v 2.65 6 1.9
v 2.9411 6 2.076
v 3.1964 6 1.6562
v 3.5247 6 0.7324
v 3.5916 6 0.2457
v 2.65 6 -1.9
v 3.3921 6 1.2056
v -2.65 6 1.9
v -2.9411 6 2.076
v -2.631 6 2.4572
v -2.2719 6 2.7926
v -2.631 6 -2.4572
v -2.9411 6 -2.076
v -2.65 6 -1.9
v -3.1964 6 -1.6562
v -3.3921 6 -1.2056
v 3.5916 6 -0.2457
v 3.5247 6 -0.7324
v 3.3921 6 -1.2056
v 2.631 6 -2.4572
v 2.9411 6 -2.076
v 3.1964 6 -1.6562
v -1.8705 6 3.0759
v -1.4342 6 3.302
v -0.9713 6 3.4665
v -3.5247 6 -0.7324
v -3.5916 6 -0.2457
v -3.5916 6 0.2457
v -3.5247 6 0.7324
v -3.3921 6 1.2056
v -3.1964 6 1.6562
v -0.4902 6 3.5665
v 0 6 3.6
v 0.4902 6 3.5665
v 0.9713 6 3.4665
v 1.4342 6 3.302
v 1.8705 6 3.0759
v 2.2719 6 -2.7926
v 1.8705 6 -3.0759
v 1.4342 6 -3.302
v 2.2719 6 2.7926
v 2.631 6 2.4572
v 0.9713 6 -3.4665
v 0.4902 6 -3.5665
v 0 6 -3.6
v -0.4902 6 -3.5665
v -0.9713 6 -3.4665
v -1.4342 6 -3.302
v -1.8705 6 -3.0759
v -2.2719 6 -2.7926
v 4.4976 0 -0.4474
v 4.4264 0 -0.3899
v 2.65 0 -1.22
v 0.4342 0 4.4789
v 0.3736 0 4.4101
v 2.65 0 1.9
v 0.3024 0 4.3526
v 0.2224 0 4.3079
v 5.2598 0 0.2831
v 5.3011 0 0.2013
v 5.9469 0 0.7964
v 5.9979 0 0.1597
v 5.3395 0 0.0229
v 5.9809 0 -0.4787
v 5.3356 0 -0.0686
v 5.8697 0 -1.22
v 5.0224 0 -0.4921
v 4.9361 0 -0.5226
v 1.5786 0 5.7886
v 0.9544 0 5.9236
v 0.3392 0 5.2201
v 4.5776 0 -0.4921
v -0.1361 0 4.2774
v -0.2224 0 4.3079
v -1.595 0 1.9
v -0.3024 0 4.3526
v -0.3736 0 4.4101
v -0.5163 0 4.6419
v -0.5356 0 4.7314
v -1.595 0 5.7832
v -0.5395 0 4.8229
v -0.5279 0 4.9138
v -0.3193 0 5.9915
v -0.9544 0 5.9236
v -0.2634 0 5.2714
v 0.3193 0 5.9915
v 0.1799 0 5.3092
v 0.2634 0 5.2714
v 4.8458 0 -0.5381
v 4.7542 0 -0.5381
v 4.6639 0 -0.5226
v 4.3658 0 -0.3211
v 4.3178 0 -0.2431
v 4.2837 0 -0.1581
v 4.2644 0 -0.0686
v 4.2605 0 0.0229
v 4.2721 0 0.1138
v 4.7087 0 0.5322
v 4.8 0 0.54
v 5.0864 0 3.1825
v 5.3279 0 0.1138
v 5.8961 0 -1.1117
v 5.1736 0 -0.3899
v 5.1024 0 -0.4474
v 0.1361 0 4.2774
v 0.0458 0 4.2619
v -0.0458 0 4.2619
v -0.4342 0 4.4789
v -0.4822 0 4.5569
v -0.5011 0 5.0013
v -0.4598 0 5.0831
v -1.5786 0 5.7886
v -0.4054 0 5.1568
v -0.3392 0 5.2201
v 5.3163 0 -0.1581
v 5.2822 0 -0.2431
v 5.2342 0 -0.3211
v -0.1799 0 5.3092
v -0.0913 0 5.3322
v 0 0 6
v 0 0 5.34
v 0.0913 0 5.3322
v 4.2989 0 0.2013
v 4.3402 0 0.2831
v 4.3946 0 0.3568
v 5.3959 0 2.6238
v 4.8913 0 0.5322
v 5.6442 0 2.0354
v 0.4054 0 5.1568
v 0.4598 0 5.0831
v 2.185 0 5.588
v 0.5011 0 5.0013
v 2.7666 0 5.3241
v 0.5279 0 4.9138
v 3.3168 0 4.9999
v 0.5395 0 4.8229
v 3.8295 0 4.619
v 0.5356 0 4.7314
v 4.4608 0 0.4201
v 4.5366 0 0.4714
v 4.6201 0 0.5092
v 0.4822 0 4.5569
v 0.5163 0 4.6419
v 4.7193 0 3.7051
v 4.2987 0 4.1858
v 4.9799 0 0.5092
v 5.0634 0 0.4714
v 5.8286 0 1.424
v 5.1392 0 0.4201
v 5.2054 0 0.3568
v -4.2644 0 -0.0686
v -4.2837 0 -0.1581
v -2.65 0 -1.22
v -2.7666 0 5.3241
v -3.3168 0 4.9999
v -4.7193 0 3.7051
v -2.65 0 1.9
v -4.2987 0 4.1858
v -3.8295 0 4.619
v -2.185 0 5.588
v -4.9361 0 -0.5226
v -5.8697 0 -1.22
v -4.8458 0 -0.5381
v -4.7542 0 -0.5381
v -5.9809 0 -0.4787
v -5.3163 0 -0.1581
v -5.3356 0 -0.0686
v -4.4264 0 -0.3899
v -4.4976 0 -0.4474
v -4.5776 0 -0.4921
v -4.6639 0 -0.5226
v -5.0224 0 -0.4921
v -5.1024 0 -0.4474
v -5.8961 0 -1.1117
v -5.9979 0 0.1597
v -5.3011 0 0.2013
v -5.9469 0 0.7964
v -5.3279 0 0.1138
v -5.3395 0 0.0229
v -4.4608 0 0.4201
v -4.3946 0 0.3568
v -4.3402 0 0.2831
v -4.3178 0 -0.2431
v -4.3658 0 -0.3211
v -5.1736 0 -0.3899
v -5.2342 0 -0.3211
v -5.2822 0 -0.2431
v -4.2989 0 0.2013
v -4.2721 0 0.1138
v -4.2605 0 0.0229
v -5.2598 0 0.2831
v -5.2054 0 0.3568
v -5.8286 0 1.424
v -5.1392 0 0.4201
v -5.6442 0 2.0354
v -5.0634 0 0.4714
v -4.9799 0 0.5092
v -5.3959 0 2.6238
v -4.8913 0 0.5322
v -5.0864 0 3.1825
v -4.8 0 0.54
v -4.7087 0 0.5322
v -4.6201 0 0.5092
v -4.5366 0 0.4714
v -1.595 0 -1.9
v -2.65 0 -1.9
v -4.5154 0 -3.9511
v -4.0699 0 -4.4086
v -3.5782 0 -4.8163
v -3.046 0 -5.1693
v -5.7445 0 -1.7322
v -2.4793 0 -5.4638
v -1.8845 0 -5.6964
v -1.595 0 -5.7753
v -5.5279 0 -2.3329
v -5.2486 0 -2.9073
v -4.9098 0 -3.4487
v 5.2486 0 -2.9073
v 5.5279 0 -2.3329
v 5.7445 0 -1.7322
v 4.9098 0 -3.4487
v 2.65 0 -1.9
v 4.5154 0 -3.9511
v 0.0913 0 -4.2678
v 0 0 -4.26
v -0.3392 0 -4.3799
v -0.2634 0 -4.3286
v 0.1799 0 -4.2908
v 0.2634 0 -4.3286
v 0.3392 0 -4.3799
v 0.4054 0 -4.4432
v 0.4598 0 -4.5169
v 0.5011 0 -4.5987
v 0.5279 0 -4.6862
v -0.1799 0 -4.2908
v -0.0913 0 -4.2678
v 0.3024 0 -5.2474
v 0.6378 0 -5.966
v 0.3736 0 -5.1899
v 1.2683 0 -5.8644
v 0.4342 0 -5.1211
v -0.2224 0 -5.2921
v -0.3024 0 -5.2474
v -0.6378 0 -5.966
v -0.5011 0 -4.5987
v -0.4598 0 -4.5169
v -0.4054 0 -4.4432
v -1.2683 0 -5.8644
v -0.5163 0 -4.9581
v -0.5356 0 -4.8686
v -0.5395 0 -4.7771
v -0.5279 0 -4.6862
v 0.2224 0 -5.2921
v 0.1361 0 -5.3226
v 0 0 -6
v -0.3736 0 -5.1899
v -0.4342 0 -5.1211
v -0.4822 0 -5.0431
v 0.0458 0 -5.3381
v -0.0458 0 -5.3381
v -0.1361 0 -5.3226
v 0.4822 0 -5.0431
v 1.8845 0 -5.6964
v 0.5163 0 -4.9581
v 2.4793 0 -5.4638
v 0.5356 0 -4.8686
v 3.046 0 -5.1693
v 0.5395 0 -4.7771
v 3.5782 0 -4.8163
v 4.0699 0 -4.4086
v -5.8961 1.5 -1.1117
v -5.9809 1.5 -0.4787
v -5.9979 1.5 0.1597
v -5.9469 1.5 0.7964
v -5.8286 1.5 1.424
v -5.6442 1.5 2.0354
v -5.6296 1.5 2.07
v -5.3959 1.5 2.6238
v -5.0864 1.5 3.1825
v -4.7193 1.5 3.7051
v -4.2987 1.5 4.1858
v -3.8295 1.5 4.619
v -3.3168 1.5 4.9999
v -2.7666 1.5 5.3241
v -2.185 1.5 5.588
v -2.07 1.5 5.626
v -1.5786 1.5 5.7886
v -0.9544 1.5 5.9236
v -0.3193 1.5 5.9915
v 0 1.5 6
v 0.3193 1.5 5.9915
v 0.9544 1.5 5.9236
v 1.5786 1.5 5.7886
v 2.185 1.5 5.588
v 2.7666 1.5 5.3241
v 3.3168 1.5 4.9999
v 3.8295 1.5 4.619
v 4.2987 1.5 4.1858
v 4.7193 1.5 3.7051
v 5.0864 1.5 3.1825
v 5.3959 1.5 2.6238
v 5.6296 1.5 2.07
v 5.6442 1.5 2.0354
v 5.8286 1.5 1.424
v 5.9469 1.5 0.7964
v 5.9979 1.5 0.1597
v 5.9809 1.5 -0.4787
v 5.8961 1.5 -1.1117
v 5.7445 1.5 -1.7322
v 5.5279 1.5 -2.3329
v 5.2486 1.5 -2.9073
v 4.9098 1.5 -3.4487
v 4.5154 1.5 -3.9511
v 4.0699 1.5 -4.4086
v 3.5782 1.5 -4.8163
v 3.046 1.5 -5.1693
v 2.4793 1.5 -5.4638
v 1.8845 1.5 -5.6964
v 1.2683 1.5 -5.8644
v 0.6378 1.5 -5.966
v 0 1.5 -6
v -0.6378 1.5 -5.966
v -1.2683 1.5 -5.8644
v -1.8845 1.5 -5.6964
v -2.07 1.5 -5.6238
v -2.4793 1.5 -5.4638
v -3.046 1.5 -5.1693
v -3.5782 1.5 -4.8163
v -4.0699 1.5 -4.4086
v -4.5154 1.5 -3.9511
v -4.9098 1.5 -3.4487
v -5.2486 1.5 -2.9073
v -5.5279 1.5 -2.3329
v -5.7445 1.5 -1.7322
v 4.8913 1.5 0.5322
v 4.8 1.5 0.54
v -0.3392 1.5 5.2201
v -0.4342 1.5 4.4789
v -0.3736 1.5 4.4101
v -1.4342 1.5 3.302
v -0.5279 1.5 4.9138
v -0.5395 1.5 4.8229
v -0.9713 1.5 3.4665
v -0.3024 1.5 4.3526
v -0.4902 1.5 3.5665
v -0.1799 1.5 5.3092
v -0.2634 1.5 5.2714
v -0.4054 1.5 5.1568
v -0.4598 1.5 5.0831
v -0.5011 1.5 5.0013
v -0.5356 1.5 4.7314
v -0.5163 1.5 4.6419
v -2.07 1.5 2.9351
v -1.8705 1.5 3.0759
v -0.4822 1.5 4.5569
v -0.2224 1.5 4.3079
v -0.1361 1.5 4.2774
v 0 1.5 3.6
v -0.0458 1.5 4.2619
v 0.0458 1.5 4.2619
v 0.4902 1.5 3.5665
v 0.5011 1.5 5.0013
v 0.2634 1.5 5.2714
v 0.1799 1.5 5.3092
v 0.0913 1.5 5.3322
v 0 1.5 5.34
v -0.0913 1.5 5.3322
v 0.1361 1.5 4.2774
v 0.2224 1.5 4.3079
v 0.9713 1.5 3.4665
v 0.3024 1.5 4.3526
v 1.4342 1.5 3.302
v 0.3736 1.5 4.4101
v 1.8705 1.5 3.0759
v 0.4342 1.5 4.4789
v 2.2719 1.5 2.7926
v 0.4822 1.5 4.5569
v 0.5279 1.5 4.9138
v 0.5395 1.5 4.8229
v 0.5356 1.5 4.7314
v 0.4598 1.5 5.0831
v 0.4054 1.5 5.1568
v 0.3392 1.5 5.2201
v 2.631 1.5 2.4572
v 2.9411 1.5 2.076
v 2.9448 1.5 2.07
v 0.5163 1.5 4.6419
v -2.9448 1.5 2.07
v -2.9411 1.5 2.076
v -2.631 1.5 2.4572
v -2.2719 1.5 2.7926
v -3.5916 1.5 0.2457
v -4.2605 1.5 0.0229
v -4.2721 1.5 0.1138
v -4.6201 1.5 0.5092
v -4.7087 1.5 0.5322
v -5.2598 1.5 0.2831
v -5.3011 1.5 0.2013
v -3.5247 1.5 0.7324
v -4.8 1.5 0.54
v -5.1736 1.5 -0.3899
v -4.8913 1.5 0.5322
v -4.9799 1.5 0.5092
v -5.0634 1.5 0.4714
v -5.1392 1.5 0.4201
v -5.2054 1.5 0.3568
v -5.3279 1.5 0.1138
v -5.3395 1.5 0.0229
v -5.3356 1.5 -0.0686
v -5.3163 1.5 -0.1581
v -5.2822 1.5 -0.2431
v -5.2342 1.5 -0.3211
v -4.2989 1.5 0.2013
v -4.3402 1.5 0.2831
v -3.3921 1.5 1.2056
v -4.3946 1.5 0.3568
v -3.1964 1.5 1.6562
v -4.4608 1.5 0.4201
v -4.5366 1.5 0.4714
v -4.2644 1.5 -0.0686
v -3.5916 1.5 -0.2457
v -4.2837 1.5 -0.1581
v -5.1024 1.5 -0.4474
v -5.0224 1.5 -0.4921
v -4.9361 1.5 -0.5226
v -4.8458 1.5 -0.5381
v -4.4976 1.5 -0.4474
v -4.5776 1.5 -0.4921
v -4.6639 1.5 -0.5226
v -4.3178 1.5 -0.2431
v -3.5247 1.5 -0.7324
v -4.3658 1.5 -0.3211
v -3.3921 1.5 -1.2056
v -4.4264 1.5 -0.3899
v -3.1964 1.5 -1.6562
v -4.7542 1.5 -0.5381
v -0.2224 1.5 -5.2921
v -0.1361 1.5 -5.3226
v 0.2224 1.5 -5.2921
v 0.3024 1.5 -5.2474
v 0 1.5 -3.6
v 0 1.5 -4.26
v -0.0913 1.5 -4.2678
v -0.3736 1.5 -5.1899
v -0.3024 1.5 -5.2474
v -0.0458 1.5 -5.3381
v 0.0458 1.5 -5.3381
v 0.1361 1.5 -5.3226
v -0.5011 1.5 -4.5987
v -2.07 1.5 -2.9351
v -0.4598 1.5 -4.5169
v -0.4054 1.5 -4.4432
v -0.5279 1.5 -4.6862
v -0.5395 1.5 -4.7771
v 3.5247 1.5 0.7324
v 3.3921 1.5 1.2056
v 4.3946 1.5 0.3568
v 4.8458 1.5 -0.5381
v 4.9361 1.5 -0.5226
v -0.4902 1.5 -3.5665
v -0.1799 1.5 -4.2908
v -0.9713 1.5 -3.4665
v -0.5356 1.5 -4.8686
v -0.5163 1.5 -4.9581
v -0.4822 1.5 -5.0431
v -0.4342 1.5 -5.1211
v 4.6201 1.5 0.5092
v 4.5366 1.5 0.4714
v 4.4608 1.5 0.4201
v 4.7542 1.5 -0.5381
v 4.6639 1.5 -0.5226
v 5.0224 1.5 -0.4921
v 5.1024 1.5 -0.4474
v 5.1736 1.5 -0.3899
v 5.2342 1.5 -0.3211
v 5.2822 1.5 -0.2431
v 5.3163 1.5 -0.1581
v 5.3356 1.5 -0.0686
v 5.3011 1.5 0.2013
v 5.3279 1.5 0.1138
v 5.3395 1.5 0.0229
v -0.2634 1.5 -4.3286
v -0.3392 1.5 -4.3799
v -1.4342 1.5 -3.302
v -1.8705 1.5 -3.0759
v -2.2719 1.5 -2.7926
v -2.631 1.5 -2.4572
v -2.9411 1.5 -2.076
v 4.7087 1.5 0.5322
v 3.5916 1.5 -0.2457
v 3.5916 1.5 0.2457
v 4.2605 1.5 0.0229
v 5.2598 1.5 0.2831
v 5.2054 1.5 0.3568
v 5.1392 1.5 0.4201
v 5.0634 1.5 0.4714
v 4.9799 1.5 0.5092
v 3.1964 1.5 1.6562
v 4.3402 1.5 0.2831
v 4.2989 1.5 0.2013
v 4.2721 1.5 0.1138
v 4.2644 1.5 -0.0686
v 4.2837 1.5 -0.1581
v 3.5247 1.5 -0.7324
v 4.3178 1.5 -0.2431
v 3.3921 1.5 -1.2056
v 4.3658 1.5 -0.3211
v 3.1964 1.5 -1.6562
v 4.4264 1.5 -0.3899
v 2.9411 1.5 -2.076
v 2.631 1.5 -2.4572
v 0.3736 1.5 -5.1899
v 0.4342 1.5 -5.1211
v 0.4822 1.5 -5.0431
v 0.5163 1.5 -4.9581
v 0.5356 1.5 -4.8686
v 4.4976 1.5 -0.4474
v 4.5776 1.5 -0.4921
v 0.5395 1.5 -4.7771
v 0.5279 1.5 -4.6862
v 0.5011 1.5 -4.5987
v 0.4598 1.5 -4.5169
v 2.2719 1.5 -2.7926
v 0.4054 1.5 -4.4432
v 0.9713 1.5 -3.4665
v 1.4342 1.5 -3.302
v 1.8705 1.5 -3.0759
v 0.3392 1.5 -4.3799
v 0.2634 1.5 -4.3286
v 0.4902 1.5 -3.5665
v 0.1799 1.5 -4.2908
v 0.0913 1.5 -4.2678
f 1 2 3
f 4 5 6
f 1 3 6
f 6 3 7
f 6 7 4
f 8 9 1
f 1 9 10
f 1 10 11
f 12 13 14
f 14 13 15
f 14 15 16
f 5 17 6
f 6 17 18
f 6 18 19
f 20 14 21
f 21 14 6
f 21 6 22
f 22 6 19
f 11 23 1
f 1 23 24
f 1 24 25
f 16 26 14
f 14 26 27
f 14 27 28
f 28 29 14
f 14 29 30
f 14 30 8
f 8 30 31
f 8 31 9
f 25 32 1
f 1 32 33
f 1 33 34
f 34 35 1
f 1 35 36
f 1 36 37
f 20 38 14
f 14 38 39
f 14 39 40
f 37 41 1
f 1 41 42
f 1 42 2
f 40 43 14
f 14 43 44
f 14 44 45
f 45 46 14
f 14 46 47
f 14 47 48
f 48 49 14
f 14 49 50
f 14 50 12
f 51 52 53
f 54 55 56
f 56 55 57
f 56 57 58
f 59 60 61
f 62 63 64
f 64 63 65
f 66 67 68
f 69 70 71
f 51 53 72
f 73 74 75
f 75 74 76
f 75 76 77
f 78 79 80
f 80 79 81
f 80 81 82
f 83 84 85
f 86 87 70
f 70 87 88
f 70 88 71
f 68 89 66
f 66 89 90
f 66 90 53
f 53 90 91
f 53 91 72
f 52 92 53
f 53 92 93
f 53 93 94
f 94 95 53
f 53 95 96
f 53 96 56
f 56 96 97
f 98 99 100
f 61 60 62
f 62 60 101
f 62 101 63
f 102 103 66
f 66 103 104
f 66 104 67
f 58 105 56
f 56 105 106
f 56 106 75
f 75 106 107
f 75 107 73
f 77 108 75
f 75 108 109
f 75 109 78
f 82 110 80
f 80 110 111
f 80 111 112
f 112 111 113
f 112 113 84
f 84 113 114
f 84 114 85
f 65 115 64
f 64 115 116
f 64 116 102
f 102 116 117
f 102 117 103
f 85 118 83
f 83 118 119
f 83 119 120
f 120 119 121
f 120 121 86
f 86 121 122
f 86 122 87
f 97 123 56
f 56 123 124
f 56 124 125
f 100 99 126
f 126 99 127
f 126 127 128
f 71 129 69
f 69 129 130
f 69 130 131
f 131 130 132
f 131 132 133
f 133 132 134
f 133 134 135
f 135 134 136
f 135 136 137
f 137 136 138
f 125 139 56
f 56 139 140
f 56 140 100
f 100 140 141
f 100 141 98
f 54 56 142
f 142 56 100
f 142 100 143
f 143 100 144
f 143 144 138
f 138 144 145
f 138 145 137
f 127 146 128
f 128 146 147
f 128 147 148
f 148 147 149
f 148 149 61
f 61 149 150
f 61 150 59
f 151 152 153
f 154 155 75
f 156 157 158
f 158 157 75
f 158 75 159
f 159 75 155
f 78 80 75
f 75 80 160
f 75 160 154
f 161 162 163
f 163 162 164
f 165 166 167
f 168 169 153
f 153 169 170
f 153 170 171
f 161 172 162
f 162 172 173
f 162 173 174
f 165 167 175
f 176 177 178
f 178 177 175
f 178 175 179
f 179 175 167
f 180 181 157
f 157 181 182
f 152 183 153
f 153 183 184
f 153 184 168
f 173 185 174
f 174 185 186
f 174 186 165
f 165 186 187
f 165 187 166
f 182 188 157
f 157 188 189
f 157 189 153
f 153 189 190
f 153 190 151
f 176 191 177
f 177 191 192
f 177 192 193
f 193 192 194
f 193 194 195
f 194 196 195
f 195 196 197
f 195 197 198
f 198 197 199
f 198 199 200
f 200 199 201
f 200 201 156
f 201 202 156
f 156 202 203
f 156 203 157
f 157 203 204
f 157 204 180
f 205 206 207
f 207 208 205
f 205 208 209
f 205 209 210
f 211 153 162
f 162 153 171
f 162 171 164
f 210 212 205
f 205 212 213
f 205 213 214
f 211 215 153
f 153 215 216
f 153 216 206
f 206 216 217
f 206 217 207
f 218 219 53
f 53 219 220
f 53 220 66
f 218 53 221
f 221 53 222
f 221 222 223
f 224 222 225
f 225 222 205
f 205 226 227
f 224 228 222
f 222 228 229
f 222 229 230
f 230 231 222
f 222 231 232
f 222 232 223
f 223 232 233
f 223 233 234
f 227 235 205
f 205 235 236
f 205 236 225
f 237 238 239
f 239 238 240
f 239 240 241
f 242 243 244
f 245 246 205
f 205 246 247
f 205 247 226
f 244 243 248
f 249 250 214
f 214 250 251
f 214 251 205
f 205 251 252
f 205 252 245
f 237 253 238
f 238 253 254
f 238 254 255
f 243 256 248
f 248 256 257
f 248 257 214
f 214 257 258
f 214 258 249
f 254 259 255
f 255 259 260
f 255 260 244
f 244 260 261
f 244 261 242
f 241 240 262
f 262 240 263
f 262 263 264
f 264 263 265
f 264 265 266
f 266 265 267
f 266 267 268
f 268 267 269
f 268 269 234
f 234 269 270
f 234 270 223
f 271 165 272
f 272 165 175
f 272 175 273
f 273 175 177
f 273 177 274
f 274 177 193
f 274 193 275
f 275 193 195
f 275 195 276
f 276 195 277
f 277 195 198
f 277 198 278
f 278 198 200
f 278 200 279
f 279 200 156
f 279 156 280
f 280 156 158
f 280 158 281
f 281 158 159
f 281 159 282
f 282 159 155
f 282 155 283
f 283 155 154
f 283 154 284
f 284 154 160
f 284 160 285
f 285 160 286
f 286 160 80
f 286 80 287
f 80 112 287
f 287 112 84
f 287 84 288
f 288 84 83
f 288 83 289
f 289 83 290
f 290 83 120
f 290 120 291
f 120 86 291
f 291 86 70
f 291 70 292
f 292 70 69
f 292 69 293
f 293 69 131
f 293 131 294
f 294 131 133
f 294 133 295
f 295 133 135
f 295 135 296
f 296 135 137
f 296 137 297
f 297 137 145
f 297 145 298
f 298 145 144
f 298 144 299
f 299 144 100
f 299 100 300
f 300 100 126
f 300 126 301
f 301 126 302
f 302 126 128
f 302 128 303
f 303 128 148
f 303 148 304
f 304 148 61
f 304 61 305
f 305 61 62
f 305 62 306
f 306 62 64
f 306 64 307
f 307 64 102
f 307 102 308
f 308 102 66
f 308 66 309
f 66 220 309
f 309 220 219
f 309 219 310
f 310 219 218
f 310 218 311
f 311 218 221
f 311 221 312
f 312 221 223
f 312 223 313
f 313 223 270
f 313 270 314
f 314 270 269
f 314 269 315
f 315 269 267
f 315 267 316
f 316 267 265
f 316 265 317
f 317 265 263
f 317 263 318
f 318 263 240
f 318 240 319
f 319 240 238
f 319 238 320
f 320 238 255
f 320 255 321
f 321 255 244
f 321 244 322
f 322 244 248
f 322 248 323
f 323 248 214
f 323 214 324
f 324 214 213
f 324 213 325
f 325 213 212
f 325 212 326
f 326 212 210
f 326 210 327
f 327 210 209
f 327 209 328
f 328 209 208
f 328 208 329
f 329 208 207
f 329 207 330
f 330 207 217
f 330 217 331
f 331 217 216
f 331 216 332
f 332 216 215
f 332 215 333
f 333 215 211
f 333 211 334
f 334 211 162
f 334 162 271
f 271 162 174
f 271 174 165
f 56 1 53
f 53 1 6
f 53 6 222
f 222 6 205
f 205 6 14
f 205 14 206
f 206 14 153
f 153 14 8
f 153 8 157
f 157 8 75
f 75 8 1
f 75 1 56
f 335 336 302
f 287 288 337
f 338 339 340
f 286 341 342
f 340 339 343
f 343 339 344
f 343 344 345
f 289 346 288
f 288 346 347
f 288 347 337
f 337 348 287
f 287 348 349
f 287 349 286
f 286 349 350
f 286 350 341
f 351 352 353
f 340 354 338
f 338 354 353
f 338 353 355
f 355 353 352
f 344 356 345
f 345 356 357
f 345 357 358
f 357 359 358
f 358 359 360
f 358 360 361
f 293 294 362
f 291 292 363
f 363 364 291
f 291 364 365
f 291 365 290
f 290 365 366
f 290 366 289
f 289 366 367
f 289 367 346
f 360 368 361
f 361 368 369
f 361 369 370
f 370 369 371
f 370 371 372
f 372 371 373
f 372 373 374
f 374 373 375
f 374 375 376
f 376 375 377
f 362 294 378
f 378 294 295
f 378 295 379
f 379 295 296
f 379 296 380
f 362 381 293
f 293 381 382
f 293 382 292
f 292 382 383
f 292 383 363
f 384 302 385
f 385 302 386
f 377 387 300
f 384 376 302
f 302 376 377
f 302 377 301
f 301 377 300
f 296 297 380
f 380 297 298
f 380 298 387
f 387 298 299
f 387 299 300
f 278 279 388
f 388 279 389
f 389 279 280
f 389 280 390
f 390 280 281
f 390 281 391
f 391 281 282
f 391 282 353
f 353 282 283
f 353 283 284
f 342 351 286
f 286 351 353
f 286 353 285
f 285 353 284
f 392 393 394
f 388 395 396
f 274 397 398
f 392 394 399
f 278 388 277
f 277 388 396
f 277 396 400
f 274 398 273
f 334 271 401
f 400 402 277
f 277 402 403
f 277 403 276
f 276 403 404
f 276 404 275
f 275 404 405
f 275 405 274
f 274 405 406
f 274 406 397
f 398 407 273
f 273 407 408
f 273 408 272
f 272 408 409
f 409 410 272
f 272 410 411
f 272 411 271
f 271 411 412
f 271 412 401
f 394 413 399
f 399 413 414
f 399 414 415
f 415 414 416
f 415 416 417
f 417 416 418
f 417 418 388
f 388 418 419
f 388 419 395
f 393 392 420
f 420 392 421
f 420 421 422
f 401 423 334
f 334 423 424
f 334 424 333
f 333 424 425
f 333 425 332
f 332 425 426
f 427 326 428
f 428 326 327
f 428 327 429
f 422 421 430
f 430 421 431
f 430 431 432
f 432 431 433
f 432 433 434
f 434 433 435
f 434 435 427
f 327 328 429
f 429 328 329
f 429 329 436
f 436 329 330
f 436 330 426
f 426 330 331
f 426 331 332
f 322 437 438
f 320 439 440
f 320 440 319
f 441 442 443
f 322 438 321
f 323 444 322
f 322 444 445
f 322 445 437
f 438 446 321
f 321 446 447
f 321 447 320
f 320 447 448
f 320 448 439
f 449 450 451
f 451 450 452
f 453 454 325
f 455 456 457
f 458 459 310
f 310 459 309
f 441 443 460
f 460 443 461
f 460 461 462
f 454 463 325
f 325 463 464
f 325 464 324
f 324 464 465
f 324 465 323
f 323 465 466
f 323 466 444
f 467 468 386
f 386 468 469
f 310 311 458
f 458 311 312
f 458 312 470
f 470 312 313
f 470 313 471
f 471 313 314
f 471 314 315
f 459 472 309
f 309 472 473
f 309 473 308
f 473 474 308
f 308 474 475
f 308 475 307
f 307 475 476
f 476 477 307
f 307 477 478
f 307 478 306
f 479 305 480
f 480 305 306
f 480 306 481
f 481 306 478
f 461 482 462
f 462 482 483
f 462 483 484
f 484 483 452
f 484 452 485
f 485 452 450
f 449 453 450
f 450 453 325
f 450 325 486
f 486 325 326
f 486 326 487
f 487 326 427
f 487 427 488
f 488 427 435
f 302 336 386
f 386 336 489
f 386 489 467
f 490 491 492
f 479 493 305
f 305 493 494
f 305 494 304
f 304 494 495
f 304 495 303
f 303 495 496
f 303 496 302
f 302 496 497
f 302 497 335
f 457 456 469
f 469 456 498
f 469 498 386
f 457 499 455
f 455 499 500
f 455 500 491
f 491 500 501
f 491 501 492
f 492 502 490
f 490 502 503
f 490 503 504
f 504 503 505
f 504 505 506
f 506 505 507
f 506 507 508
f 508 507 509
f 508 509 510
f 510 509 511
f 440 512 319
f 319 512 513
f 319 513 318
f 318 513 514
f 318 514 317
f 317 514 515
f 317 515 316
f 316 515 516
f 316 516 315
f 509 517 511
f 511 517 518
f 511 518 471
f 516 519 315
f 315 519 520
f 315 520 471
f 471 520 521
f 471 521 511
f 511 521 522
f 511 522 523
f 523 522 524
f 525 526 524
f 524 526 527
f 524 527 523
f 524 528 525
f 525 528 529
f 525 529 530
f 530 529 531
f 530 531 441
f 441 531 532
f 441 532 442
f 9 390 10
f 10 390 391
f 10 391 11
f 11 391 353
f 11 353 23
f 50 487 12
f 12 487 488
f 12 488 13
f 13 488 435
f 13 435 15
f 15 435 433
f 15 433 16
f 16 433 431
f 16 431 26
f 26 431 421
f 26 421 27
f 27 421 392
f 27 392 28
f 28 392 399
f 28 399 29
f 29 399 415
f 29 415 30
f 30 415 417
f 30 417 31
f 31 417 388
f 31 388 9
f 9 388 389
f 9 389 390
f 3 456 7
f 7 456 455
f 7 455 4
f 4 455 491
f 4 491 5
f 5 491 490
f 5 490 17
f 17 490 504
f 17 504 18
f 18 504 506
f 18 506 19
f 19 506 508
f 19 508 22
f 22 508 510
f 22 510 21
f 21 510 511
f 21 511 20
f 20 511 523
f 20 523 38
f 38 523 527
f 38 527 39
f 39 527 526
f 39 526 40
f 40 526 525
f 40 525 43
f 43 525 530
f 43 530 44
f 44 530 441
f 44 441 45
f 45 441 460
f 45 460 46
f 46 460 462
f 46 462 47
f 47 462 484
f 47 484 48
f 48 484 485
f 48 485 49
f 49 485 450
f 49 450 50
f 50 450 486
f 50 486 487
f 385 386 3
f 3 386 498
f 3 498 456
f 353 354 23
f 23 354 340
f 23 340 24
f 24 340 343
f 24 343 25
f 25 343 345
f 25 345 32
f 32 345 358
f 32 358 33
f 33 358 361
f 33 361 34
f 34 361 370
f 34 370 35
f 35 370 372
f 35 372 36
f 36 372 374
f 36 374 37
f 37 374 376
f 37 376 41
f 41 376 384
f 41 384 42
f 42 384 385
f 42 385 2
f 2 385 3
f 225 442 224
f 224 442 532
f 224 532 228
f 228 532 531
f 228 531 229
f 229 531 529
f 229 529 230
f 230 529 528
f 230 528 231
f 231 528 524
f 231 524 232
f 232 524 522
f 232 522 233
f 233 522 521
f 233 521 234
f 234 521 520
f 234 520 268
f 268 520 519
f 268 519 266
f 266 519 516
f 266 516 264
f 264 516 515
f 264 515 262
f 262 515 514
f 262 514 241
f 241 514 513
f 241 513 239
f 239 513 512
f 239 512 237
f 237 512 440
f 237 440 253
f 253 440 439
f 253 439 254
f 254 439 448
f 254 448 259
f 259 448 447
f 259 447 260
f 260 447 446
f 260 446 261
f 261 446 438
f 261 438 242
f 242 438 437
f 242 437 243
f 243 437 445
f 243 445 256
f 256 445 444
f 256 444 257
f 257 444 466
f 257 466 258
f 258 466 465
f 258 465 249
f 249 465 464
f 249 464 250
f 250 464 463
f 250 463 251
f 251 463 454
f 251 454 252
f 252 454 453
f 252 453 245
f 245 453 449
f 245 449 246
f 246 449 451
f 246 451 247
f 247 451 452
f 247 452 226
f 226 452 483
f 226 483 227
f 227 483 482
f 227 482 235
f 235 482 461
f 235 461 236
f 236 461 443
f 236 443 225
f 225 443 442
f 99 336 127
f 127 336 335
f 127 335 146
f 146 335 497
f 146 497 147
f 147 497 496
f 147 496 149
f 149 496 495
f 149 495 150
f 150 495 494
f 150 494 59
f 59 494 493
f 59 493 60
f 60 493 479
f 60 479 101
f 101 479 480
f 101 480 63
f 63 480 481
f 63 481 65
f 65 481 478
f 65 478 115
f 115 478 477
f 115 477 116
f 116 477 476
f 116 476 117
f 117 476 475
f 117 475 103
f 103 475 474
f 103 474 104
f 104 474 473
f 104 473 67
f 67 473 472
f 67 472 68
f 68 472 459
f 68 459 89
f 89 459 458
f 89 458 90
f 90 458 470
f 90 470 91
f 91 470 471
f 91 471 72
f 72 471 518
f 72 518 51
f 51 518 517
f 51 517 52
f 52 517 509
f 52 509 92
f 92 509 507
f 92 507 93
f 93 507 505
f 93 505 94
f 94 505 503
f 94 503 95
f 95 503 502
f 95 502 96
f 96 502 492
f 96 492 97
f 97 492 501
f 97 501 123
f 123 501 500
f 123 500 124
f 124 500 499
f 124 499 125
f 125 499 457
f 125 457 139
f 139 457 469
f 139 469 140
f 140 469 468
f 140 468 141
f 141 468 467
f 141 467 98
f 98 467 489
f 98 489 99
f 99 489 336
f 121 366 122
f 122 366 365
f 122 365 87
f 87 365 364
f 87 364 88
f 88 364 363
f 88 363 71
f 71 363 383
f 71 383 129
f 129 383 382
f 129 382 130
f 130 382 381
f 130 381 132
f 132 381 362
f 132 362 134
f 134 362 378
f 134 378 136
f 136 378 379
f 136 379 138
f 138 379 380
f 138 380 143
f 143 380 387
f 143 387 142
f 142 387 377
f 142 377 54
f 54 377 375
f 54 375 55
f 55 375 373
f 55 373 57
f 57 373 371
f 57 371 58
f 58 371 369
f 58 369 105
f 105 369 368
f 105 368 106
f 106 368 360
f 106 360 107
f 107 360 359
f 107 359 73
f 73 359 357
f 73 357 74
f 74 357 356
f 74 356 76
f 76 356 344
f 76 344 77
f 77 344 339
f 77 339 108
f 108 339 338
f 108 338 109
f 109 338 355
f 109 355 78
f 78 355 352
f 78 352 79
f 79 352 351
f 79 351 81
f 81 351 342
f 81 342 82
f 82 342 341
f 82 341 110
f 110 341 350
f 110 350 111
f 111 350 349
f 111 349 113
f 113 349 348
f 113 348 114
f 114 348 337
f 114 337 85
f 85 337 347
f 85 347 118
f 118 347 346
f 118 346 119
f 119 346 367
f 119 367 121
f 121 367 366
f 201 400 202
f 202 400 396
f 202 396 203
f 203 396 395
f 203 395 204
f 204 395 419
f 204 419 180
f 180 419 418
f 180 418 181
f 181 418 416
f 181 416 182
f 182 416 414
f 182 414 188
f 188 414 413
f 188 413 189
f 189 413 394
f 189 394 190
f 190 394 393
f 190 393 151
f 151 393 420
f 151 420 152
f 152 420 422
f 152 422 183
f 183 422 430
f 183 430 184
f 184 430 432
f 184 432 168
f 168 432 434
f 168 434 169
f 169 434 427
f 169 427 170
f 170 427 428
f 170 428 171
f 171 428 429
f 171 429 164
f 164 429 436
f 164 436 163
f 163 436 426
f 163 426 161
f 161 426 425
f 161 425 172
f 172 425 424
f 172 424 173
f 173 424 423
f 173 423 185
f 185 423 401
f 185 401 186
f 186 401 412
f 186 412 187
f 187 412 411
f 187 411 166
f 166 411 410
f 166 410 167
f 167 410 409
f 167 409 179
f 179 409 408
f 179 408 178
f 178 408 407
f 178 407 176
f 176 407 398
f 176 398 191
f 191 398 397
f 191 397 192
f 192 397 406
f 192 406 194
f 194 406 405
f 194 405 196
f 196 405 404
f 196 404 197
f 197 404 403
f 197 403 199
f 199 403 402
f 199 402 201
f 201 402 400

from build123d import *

# Parameters (mm, degrees)
SKETCH1_R           = 6
SKETCH1_W           = 5.3
SKETCH1_H           = 3.8
BOSS_EXTRUDE1_DEPTH = 6
SKETCH6_W           = 2.4
SKETCH6_H           = 4.5
SKETCH10_R          = 0.54
CUT_EXTRUDE2_DEPTH  = 60


with BuildPart() as part:
    # Sketch1 → Boss-Extrude1 (new body)
    with BuildSketch(Plane(origin=(0, 0, 0), x_dir=(1, 0, 0), z_dir=(0, 1, 0))):
        with Locations(Location((0, 0, 0), (0, 0, 270))):
            Circle(SKETCH1_R)
        Rectangle(SKETCH1_W, SKETCH1_H, mode=Mode.SUBTRACT)
    extrude(amount=BOSS_EXTRUDE1_DEPTH)

    # Sketch6 → Cut-Revolve1 (revolve, cut)
    with BuildSketch(Plane(origin=(0, 0, 0), x_dir=(0, 0, -1), z_dir=(1, 0, 0))):
        with Locations((-4.8, 3.75)):
            Rectangle(SKETCH6_W, SKETCH6_H)
    revolve(axis=Axis((0, 6, 0), (0, -1, 0)), mode=Mode.SUBTRACT)

    # Sketch10 → Cut-Extrude2 (cut)
    with BuildSketch(Plane(origin=(0, 1.5, 0), x_dir=(1, 0, 0), z_dir=(0, 1, 0))):
        with Locations(Location((-4.8, 0, 0), (0, 0, 270))):
            Circle(SKETCH10_R)
        with Locations(Location((0, -4.8, 0), (0, 0, 270))):
            Circle(SKETCH10_R)
        with Locations(Location((4.8, 0, 0), (0, 0, 270))):
            Circle(SKETCH10_R)
        with Locations(Location((0, 4.8, 0), (0, 0, 270))):
            Circle(SKETCH10_R)
    extrude(amount=-CUT_EXTRUDE2_DEPTH, mode=Mode.SUBTRACT)


solid = part.part
